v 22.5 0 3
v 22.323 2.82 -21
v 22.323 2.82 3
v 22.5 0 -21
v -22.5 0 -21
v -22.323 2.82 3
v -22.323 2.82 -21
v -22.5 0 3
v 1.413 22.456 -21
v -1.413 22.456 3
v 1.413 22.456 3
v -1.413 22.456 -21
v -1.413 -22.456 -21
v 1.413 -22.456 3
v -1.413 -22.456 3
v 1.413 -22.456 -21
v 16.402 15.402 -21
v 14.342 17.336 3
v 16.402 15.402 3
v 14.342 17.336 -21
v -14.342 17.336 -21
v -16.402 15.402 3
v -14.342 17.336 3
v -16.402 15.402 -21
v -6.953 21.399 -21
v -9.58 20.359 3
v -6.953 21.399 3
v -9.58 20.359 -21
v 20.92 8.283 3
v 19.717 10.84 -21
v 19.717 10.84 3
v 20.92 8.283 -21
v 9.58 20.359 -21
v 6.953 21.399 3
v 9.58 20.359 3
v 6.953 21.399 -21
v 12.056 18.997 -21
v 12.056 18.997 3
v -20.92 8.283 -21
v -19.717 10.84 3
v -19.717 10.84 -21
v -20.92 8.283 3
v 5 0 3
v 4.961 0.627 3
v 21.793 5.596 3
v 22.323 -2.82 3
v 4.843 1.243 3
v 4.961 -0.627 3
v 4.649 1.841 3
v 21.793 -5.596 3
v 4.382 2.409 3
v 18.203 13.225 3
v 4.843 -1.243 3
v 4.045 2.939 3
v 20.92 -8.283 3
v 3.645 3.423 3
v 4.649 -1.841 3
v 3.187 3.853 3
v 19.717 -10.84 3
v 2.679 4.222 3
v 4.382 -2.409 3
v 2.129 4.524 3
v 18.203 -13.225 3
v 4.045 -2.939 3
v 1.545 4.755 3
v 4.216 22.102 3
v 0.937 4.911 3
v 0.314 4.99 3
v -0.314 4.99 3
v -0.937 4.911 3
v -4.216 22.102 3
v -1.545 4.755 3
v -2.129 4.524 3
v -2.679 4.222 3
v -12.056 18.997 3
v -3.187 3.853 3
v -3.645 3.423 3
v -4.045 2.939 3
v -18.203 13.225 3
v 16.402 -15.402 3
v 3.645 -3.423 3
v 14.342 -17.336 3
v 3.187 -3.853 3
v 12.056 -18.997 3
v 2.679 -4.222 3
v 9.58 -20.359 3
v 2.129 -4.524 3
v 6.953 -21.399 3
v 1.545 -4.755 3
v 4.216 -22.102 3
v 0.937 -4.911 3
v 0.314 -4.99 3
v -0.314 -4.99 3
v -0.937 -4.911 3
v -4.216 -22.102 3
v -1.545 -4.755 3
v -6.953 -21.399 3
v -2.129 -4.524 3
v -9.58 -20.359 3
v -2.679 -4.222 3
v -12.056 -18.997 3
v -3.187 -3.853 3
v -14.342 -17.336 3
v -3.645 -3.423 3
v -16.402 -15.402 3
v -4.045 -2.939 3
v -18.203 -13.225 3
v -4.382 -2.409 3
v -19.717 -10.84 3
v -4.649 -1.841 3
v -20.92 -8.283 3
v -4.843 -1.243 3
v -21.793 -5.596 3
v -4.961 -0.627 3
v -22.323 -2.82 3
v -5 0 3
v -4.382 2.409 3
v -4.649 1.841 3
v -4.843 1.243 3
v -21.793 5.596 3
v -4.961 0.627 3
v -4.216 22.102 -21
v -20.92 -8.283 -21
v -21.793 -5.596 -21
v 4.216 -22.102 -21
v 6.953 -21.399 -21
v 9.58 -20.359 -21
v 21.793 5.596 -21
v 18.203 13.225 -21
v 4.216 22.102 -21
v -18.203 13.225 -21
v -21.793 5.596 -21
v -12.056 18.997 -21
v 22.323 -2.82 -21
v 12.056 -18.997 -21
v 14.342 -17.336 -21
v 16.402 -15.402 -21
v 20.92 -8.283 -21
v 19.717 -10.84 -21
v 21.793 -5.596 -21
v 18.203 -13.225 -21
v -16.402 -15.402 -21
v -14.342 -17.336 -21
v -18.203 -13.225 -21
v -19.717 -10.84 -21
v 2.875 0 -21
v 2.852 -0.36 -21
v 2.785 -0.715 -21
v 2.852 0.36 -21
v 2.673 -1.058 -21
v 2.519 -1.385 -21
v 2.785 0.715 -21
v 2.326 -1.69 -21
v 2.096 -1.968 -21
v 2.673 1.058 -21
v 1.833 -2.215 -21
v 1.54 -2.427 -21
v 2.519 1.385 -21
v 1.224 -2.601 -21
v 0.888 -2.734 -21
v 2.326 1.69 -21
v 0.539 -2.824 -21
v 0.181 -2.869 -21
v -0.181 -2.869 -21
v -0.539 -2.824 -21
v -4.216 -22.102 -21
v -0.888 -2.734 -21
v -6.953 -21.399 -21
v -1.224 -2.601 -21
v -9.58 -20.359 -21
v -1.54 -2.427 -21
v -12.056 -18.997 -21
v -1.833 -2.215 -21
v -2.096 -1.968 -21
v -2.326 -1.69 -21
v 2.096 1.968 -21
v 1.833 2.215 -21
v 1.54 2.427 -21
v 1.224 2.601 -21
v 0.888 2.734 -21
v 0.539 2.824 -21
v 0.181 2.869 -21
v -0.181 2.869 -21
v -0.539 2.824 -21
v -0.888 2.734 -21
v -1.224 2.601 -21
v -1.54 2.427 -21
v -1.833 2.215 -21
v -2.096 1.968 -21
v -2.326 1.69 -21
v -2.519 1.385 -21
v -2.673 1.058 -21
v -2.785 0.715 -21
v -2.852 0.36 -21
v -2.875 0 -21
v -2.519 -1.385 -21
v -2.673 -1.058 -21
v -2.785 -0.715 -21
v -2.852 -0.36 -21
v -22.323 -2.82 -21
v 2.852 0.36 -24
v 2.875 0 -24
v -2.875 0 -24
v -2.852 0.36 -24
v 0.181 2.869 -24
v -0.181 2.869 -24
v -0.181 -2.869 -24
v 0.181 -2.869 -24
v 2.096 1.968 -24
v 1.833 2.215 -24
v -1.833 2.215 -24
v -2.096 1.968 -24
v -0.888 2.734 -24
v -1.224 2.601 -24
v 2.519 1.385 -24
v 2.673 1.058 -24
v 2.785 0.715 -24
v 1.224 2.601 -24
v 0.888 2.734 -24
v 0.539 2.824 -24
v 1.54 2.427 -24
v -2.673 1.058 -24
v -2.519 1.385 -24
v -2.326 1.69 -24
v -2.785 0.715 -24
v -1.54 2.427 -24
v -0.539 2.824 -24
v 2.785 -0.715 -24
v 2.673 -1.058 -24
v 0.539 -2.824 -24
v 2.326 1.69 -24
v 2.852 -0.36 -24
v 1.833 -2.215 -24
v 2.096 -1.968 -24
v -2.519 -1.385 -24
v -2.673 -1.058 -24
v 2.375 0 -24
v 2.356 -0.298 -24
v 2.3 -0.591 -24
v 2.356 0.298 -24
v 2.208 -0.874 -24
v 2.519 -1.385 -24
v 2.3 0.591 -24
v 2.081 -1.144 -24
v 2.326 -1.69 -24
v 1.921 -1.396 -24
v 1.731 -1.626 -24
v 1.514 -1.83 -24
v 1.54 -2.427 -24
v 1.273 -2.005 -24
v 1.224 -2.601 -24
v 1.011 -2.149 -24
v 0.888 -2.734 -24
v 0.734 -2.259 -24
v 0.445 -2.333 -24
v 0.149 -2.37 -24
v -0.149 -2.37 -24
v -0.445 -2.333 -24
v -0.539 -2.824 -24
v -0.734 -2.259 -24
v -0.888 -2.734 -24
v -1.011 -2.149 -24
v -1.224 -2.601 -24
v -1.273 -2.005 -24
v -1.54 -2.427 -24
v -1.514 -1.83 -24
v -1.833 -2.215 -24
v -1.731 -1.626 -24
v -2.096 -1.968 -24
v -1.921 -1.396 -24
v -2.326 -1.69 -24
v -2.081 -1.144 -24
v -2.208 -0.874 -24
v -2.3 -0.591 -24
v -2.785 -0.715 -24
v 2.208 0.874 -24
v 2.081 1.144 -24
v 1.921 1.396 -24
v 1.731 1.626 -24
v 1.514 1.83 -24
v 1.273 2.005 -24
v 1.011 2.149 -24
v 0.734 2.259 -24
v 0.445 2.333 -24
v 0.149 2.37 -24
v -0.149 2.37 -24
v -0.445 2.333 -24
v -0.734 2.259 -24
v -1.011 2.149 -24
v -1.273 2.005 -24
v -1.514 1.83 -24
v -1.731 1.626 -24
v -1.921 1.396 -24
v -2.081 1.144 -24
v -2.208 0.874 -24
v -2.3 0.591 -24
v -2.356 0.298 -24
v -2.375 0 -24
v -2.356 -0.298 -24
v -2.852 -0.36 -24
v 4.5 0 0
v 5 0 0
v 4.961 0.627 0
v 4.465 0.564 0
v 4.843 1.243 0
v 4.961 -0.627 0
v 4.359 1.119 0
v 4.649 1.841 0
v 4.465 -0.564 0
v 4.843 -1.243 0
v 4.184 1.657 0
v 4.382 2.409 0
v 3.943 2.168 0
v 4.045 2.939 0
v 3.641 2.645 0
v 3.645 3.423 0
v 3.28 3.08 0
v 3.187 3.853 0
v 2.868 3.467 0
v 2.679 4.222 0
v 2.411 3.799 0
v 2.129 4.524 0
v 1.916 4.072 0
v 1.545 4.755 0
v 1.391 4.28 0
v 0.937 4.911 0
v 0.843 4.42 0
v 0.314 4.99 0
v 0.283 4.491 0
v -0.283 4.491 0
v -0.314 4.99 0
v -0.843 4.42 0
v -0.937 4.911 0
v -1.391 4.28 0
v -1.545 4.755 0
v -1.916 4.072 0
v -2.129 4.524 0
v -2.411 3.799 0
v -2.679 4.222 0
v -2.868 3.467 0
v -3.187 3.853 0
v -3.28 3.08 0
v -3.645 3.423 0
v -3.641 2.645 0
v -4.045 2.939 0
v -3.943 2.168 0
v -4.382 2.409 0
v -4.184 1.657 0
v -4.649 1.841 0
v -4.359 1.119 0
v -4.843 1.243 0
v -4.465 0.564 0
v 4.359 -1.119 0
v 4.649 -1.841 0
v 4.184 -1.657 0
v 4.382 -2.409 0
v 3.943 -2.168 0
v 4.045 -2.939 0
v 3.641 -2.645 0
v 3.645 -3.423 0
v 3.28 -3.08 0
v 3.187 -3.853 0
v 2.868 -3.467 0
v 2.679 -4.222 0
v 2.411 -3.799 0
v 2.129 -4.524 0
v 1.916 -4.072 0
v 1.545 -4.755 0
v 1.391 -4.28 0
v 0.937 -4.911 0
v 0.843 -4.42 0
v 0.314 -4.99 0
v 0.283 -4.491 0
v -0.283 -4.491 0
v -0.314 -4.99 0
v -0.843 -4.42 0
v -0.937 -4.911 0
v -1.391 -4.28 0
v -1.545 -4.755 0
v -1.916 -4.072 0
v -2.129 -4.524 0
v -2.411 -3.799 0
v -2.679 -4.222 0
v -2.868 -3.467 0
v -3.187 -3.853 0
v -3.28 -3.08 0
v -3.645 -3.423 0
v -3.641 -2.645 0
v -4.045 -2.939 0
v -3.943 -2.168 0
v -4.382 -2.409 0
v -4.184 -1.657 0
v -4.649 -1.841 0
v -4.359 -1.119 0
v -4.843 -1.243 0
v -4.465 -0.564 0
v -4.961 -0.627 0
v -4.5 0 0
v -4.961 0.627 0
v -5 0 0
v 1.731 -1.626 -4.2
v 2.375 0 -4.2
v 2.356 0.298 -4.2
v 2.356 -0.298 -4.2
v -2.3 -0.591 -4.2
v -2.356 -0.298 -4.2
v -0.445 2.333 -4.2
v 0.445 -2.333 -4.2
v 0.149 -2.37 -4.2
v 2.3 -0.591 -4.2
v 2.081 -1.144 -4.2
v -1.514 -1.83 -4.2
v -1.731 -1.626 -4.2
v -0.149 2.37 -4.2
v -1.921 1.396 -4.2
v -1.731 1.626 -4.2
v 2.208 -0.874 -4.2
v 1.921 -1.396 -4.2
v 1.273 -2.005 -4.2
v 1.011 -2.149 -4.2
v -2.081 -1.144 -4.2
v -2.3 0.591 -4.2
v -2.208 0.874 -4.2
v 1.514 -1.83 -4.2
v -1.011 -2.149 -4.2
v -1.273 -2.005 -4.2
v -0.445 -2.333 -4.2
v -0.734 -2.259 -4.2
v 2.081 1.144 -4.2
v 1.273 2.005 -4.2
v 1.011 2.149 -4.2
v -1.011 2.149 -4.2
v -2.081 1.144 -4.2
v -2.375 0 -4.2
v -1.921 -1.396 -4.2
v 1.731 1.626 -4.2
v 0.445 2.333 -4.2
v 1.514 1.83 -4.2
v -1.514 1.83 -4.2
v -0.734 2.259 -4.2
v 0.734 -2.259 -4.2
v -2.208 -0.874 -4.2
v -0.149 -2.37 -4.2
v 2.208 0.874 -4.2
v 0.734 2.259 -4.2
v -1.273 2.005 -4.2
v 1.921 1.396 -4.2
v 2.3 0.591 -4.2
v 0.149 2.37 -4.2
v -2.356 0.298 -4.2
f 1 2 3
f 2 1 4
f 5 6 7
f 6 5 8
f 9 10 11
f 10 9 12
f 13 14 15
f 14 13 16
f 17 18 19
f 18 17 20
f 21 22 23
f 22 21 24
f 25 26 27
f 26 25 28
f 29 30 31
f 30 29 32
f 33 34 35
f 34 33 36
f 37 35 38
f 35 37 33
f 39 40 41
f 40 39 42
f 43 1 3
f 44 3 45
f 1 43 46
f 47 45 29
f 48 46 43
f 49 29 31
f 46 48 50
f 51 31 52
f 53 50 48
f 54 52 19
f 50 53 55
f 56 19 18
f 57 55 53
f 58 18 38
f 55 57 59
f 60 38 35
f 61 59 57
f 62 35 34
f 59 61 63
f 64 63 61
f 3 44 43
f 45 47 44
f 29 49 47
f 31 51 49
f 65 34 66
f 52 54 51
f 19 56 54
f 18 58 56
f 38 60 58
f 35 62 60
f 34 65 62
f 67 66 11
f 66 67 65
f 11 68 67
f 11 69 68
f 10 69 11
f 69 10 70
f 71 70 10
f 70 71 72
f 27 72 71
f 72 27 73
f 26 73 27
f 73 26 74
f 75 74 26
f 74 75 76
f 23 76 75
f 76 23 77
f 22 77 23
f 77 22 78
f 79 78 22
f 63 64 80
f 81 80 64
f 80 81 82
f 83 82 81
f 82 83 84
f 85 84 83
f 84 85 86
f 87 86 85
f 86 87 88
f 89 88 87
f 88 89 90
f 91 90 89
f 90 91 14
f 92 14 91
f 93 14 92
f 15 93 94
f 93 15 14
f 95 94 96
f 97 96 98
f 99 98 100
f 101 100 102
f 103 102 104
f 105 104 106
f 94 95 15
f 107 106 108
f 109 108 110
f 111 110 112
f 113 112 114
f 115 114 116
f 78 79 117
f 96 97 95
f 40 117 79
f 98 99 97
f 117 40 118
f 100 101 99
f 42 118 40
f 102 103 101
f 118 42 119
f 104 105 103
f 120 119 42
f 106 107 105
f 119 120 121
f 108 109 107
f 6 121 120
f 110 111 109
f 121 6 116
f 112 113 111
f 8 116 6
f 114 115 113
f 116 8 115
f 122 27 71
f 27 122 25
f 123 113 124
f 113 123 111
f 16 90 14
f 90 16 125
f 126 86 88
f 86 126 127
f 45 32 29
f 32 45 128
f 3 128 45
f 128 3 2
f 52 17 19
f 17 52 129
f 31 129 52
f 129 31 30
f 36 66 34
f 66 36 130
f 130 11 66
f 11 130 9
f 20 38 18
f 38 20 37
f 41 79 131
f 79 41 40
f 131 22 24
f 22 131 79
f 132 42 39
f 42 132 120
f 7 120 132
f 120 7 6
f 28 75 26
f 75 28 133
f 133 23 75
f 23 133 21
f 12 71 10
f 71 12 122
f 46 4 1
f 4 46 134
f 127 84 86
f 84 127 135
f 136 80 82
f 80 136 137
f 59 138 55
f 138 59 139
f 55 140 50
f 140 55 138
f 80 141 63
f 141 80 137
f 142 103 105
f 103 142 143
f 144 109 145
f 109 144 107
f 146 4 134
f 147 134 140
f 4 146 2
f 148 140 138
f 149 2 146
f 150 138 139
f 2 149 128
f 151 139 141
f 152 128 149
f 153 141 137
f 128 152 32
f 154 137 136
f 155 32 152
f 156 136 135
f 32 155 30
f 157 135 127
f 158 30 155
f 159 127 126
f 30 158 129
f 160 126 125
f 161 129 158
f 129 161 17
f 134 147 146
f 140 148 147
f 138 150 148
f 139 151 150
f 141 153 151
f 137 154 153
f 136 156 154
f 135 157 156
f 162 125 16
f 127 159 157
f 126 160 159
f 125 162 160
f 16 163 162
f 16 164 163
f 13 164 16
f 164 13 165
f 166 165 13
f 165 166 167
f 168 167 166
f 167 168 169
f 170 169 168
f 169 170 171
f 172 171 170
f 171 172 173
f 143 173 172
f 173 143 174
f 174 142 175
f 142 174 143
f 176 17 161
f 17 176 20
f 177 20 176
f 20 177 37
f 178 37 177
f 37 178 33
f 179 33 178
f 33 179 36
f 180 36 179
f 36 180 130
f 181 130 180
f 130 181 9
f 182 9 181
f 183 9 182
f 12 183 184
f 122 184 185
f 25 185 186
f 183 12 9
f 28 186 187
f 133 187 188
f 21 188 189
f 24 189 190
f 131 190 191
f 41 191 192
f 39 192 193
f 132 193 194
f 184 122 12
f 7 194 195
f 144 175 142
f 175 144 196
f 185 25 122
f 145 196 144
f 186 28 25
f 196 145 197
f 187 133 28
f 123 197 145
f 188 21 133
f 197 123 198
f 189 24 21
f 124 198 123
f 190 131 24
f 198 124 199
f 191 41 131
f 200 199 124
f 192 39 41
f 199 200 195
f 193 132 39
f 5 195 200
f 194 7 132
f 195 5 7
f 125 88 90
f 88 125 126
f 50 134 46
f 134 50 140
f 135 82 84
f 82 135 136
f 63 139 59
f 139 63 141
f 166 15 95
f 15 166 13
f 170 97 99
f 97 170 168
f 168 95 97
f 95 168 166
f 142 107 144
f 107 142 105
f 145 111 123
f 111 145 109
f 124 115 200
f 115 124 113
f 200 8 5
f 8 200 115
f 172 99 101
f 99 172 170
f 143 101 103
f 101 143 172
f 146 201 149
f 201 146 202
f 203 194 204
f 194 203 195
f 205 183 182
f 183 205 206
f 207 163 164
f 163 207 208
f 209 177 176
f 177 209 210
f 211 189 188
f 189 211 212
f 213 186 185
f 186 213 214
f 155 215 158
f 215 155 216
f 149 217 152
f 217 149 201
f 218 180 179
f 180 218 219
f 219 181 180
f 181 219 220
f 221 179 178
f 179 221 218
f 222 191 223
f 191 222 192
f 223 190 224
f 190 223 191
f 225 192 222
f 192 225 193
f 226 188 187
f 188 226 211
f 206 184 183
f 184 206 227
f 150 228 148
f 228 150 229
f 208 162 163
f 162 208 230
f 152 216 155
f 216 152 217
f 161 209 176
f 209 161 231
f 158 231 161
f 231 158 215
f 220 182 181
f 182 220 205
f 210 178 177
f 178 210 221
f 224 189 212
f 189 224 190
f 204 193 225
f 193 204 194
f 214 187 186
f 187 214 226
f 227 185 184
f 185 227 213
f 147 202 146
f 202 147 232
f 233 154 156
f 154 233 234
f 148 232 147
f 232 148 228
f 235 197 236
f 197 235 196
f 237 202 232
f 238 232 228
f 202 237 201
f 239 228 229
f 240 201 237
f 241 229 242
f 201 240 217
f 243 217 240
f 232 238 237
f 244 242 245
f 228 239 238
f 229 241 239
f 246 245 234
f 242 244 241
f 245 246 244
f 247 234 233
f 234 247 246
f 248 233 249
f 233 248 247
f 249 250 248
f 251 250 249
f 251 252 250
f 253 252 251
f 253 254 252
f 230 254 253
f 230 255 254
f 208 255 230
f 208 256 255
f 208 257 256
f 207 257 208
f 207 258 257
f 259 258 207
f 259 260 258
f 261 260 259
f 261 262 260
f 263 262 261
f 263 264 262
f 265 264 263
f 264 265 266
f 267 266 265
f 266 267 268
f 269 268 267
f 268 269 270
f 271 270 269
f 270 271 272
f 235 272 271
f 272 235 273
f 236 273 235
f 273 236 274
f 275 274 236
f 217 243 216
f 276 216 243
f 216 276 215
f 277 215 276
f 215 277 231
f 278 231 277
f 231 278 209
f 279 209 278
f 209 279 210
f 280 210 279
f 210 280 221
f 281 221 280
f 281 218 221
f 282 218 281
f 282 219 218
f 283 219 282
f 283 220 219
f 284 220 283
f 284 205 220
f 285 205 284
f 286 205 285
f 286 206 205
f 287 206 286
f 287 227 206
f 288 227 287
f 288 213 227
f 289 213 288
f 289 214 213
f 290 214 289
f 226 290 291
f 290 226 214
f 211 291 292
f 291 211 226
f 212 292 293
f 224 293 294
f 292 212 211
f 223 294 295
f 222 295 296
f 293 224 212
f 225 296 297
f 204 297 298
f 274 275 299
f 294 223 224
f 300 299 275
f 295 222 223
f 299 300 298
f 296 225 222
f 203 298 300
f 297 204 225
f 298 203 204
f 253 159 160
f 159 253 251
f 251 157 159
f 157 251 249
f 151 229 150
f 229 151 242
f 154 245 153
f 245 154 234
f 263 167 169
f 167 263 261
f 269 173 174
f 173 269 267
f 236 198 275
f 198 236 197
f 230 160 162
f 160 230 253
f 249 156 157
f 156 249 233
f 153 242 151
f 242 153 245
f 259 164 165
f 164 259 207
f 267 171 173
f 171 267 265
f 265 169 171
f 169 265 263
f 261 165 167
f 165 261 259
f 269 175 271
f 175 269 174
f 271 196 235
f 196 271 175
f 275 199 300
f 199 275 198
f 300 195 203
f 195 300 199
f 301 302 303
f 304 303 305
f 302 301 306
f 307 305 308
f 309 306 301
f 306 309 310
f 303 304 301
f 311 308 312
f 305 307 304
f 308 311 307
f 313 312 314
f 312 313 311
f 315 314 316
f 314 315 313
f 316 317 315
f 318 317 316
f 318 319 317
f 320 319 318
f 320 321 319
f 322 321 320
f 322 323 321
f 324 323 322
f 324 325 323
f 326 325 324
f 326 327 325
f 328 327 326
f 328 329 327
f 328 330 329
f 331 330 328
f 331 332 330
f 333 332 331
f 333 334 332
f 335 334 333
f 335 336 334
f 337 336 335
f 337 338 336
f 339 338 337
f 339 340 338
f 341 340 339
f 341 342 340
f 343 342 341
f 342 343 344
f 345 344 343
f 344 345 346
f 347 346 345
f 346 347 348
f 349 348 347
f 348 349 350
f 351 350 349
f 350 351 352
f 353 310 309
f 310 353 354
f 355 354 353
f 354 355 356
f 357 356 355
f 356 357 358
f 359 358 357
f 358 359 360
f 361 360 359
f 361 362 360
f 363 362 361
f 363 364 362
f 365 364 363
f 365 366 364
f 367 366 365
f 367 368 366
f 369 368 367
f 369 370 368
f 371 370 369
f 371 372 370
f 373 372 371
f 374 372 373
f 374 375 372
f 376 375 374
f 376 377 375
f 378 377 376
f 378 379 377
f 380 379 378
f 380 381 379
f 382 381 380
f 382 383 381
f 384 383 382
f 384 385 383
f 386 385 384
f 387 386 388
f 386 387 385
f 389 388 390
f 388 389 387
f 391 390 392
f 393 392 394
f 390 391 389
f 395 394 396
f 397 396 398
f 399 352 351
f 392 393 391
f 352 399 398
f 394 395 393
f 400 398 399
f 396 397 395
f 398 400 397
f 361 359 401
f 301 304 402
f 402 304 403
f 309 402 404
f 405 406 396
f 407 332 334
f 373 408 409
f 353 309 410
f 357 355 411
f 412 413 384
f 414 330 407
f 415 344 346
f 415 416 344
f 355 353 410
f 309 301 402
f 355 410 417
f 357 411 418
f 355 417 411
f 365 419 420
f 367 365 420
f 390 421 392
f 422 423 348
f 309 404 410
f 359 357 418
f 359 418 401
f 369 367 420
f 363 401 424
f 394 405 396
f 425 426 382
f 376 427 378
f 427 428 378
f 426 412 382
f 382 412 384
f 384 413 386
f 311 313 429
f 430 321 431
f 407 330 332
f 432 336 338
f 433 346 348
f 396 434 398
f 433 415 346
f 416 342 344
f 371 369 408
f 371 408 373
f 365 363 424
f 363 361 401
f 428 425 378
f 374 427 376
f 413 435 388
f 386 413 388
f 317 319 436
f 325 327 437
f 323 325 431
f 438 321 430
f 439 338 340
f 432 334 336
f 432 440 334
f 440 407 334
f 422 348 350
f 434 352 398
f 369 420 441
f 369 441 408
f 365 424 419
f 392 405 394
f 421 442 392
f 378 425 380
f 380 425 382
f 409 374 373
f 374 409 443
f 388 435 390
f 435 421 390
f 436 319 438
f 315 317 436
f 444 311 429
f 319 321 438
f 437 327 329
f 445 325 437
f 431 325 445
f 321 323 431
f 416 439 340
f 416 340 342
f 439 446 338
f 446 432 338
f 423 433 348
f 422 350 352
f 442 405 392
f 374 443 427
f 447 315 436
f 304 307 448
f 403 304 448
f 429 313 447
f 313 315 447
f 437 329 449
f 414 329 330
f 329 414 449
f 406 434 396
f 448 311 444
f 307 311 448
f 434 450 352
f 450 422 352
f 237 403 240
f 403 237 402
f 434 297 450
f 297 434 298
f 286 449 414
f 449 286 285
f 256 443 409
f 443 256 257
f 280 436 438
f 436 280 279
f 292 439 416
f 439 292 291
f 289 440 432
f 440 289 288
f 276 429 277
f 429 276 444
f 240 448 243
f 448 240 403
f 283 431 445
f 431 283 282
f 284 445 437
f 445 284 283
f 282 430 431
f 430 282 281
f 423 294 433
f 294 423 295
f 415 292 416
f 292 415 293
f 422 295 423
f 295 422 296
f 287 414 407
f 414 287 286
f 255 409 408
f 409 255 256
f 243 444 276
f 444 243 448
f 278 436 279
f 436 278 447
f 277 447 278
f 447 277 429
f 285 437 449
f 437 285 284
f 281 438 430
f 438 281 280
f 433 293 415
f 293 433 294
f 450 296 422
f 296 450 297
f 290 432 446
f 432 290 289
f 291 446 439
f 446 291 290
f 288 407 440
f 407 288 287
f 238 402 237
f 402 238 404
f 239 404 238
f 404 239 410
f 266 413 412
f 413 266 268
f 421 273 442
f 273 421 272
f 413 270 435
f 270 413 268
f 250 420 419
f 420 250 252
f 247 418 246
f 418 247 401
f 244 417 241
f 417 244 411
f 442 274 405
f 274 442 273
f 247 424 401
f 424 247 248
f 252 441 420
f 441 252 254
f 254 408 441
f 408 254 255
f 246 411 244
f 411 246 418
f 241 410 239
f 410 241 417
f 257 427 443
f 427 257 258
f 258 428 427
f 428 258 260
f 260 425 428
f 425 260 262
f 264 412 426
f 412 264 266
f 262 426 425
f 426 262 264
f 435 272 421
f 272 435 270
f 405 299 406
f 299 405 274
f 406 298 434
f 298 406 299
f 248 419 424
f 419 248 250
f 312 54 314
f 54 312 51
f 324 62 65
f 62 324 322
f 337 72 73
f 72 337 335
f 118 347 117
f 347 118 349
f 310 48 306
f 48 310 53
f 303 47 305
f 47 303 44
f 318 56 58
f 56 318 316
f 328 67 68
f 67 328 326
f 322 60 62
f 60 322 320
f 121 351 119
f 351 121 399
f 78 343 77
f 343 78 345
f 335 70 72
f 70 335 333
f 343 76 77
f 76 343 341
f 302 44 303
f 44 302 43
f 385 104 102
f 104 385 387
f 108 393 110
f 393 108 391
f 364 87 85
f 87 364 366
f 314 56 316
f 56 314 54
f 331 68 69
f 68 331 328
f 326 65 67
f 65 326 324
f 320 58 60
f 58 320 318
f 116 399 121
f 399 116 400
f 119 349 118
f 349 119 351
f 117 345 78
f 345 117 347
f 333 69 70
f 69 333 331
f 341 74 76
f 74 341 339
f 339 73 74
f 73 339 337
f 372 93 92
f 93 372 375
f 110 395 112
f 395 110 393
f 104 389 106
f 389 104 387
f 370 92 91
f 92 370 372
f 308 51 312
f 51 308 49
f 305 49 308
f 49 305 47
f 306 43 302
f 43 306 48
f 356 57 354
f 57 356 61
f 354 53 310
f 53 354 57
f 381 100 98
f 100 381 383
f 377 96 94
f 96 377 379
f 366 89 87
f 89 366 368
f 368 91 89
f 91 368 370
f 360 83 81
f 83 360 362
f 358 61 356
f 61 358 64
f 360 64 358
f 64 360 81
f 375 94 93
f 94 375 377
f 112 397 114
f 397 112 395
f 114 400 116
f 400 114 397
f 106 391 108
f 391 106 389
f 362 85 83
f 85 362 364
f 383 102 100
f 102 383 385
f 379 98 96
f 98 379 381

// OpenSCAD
$fn = 50;

difference() {
	union() {
		translate(v = [0, 0, -21.0]) {
			cylinder(h = 24, r = 22.5);
		}
		#translate(v = [0, 0, -24.0]) {
			cylinder(h = 24, r = 2.875);
		}
	}
	union() {
		translate(v = [0, 0, 0]) {
			rotate(a = [0, 0, 0]) {
				difference() {
					union() {
						translate(v = [0, 0, -24.0]) {
							cylinder(h = 24, r = 2.25);
						}
						translate(v = [0, 0, -4.2]) {
							cylinder(h = 4.2, r1 = 2.375, r2 = 4.5);
						}
						translate(v = [0, 0, -24.0]) {
							cylinder(h = 24, r = 2.375);
						}
						translate(v = [0, 0, -24.0]) {
							cylinder(h = 24, r = 2.25);
						}
					}
					union();
				}
			}
		}
		#cylinder(h = 3, r = 5.0);
	}
}
